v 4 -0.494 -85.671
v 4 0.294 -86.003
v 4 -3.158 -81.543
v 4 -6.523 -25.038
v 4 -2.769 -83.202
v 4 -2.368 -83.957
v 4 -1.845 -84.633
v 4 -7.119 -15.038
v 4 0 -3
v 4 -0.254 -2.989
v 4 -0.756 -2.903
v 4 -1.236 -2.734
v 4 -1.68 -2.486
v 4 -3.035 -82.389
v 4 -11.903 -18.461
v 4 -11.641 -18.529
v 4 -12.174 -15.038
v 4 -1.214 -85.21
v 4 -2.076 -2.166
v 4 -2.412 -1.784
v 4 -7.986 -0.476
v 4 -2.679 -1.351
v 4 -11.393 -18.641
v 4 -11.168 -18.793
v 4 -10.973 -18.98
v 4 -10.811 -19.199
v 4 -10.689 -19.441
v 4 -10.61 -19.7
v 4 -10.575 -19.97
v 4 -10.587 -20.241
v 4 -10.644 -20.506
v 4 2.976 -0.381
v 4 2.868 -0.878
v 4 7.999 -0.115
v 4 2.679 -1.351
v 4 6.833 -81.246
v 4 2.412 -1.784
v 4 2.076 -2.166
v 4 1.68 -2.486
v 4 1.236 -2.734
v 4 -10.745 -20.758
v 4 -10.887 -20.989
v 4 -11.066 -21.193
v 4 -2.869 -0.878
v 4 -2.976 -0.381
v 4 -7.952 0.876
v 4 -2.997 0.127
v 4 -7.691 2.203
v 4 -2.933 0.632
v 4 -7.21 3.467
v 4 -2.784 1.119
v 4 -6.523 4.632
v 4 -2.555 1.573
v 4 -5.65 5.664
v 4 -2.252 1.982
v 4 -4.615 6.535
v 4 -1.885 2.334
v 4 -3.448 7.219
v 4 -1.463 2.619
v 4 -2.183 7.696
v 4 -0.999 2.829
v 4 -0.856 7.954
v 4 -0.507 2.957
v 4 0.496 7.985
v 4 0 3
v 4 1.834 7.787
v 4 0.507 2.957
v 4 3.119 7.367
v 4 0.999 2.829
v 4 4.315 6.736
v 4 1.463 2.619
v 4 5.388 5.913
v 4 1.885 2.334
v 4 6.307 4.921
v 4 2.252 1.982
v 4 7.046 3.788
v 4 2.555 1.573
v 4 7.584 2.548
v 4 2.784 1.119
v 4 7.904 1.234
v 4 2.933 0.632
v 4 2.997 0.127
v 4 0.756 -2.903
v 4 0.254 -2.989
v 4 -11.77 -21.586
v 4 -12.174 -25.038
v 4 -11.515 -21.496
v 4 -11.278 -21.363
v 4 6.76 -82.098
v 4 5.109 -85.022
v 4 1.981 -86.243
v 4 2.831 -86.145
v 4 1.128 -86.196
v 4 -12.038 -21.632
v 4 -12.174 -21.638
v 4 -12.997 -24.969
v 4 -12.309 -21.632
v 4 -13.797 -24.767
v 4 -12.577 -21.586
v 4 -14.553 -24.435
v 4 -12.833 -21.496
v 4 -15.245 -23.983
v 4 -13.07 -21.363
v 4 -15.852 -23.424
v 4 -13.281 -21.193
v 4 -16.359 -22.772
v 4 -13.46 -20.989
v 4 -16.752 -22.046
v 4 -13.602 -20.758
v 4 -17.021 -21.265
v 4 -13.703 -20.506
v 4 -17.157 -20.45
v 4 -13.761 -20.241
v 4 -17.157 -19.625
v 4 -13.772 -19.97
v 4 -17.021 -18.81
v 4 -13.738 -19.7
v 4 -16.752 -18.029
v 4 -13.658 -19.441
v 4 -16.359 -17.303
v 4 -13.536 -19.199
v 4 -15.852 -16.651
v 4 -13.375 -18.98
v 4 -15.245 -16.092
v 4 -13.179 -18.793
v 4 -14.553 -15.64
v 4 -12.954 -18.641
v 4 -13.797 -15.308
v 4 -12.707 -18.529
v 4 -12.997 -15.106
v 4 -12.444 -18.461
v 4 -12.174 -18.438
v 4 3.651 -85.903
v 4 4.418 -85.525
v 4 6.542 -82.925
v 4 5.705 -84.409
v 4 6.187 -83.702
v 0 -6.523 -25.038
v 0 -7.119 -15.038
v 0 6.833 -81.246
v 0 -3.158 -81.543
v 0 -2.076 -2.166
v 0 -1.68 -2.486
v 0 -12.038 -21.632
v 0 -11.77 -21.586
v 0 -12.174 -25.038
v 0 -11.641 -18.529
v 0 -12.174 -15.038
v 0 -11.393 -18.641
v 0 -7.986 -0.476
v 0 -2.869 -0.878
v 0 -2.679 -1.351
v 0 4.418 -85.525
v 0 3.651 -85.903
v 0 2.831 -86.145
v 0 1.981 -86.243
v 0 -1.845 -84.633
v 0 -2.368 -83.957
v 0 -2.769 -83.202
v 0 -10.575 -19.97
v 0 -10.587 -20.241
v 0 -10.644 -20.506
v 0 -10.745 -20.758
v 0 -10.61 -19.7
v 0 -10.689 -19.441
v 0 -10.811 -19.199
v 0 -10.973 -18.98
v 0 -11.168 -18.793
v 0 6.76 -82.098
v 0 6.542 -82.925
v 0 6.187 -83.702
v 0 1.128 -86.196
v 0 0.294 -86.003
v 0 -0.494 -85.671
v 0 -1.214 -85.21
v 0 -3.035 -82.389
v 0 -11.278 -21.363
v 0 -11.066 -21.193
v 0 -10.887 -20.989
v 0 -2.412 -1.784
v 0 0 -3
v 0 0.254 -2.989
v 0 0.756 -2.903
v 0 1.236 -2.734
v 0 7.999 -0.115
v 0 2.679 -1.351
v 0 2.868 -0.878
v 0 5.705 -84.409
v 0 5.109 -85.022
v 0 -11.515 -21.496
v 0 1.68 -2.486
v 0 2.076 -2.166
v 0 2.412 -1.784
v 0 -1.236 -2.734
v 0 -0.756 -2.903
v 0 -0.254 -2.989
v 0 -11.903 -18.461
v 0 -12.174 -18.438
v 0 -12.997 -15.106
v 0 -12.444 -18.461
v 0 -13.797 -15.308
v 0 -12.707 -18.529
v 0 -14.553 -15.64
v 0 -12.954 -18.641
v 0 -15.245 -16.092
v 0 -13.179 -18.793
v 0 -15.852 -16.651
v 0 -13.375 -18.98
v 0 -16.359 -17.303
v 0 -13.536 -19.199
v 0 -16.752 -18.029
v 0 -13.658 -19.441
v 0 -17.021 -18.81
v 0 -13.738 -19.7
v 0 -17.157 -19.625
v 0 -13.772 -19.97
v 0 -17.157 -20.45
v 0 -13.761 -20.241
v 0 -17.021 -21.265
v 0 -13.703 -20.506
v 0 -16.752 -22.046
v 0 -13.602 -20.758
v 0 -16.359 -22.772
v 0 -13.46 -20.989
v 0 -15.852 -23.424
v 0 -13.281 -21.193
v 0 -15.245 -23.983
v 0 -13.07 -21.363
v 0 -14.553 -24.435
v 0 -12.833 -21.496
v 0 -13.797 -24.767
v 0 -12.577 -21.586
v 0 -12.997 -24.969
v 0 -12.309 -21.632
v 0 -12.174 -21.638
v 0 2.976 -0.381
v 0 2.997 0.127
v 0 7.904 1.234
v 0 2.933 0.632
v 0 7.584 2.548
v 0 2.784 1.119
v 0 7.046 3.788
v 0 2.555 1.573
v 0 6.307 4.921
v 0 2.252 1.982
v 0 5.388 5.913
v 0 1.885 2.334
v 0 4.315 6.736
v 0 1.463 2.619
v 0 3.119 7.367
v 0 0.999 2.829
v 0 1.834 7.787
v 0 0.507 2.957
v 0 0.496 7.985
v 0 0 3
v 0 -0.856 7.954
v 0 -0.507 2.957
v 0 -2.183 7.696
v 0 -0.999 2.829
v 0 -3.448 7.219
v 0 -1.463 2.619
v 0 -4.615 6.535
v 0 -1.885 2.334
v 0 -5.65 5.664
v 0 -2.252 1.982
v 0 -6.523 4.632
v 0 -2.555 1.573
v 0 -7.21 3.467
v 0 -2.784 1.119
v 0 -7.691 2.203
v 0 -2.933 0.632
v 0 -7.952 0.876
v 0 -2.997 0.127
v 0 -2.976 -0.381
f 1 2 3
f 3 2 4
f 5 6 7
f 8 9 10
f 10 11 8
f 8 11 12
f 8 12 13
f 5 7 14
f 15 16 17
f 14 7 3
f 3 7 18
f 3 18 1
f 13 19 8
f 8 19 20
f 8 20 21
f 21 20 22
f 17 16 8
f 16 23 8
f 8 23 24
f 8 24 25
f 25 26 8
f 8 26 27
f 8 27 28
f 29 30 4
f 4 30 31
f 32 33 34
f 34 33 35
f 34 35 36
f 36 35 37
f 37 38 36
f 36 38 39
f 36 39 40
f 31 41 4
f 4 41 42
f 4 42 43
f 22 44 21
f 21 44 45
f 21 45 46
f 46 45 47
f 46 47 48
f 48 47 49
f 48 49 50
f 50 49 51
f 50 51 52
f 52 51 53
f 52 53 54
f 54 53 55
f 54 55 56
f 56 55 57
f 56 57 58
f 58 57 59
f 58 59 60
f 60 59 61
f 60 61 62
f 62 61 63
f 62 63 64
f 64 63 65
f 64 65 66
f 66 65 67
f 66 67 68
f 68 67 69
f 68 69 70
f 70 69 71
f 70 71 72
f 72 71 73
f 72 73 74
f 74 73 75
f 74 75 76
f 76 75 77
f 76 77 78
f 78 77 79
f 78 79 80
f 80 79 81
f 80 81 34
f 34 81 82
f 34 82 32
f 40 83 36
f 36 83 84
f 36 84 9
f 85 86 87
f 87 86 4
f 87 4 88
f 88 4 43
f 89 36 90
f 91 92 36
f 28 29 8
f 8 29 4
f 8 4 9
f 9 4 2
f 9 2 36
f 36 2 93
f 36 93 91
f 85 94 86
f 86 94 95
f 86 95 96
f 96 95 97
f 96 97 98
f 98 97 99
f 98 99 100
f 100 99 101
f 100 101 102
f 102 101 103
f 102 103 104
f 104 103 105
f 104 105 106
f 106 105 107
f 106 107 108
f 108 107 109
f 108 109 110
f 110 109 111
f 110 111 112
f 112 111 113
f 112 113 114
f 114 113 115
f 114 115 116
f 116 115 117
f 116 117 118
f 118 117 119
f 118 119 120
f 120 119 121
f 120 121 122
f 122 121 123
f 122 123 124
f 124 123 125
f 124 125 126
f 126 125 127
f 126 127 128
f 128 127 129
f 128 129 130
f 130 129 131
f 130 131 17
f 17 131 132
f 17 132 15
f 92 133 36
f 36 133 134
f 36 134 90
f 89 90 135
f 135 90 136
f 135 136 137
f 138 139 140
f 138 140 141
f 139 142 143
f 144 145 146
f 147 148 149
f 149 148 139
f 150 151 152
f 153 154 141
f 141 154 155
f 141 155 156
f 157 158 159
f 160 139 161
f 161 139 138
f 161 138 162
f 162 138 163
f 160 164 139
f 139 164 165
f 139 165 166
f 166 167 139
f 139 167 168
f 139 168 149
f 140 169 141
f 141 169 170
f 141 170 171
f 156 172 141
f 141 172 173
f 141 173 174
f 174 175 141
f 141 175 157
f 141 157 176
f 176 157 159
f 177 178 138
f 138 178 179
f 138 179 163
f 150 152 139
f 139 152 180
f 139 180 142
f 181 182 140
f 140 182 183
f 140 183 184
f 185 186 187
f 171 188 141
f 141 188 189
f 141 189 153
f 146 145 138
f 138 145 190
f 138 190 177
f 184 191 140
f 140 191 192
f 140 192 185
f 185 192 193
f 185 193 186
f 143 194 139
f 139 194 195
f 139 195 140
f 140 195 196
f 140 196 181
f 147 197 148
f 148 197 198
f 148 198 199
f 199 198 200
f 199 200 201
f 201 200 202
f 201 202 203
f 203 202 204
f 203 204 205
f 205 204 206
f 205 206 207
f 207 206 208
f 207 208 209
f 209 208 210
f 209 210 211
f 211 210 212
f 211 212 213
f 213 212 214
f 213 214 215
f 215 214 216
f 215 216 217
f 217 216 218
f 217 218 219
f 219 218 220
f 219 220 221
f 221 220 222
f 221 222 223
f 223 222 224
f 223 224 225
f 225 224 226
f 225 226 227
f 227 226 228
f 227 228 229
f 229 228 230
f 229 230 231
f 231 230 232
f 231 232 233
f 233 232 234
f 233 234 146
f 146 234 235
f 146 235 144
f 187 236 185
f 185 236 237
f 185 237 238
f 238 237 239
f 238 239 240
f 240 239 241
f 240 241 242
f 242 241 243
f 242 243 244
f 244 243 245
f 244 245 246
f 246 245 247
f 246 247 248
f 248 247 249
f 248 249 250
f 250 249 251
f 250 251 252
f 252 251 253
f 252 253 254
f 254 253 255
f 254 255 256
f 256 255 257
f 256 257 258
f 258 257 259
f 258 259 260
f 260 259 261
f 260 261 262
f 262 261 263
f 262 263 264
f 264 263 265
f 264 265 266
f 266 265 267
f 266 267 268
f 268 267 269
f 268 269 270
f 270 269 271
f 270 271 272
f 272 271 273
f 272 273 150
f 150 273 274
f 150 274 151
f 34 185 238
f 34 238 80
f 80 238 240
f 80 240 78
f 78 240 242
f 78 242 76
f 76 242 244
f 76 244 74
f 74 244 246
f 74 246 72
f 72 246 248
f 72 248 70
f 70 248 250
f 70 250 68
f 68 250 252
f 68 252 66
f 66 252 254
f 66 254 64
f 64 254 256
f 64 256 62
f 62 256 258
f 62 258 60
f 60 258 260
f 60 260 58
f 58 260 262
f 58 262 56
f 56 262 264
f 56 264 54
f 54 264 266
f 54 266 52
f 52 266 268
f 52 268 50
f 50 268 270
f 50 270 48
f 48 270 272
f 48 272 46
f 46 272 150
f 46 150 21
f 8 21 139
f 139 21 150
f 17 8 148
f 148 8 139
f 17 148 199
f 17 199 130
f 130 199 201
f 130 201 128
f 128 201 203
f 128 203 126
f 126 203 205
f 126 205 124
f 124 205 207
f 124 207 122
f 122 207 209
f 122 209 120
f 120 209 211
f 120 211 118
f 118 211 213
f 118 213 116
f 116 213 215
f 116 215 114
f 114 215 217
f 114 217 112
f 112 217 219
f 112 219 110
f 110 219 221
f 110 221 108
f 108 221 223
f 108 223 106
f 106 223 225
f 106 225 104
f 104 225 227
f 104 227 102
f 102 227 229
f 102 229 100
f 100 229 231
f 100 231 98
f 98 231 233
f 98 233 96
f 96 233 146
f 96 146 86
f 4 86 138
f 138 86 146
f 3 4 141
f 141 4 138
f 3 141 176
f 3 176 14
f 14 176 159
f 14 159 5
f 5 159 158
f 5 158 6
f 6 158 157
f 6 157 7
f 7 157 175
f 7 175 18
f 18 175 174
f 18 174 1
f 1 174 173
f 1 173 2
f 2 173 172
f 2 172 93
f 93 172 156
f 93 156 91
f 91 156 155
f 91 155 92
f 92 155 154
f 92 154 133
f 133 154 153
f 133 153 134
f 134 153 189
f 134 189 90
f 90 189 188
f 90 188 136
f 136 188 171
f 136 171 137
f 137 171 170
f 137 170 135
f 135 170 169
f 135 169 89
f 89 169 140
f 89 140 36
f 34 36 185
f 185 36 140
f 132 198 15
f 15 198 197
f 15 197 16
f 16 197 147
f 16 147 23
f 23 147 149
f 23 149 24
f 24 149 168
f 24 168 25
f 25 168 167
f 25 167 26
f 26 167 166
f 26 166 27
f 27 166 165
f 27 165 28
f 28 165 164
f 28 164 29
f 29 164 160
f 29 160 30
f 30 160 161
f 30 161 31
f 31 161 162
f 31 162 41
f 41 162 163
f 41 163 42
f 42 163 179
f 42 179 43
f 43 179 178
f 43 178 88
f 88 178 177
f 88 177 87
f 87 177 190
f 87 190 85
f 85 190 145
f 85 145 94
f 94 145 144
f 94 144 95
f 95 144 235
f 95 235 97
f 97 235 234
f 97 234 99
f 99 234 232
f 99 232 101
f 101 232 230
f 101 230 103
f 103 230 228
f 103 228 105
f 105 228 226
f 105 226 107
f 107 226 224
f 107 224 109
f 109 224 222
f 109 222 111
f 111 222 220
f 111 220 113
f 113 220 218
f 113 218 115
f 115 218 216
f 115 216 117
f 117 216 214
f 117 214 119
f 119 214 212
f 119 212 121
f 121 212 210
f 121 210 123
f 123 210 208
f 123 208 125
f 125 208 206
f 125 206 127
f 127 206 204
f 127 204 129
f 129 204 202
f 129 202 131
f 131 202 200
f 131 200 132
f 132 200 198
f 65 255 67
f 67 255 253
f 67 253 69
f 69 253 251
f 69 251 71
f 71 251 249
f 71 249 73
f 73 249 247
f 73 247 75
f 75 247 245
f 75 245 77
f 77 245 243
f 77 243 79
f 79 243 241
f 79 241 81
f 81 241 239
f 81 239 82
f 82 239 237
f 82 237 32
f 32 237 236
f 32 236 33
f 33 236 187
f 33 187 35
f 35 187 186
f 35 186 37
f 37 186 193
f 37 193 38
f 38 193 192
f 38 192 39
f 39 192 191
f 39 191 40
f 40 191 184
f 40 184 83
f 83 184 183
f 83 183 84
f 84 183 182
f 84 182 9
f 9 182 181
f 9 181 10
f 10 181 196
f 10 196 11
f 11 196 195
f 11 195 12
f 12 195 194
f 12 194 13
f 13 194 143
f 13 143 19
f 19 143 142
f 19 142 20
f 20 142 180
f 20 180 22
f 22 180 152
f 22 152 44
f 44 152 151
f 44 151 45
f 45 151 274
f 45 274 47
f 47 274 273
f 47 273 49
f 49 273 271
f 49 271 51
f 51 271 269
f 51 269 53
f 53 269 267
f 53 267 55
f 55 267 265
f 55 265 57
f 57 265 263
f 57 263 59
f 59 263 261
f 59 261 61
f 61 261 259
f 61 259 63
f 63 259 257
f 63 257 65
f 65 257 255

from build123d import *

# Parameters (mm, degrees)
SKETCH1_R           = 1.6
SKETCH1_R_2         = 3
BOSS_EXTRUDE1_DEPTH = 4


with BuildPart() as part:
    # Sketch1 → Boss-Extrude1 (new body)
    with BuildSketch(Plane(origin=(0, 0, 0), x_dir=(0, 0, -1), z_dir=(1, 0, 0))):
        with BuildLine():
            Line((0.115012364, 7.999173217), (81.245547141, 6.832675837))
            ThreePointArc((81.245547141, 6.832675837), (86.243336319, 1.981347724), (81.54275944, -3.158482831))
            Line((81.54275944, -3.158482831), (25.037563857, -6.523240441))
            Line((25.037563857, -6.523240441), (25.037563857, -12.17359421))
            ThreePointArc((25.037563857, -12.17359421), (20.037563857, -17.17359421), (15.037563857, -12.17359421))
            Line((15.037563857, -12.17359421), (15.037563857, -7.118718003))
            Line((15.037563857, -7.118718003), (0.475539679, -7.985853869))
            ThreePointArc((0.475539679, -7.985853869), (-7.997966033, -0.180386633), (0.115012364, 7.999173217))
        make_face()
        with Locations((20.037563857, -12.17359421)):
            Circle(SKETCH1_R, mode=Mode.SUBTRACT)
        Circle(SKETCH1_R_2, mode=Mode.SUBTRACT)
    extrude(amount=BOSS_EXTRUDE1_DEPTH)


solid = part.part
